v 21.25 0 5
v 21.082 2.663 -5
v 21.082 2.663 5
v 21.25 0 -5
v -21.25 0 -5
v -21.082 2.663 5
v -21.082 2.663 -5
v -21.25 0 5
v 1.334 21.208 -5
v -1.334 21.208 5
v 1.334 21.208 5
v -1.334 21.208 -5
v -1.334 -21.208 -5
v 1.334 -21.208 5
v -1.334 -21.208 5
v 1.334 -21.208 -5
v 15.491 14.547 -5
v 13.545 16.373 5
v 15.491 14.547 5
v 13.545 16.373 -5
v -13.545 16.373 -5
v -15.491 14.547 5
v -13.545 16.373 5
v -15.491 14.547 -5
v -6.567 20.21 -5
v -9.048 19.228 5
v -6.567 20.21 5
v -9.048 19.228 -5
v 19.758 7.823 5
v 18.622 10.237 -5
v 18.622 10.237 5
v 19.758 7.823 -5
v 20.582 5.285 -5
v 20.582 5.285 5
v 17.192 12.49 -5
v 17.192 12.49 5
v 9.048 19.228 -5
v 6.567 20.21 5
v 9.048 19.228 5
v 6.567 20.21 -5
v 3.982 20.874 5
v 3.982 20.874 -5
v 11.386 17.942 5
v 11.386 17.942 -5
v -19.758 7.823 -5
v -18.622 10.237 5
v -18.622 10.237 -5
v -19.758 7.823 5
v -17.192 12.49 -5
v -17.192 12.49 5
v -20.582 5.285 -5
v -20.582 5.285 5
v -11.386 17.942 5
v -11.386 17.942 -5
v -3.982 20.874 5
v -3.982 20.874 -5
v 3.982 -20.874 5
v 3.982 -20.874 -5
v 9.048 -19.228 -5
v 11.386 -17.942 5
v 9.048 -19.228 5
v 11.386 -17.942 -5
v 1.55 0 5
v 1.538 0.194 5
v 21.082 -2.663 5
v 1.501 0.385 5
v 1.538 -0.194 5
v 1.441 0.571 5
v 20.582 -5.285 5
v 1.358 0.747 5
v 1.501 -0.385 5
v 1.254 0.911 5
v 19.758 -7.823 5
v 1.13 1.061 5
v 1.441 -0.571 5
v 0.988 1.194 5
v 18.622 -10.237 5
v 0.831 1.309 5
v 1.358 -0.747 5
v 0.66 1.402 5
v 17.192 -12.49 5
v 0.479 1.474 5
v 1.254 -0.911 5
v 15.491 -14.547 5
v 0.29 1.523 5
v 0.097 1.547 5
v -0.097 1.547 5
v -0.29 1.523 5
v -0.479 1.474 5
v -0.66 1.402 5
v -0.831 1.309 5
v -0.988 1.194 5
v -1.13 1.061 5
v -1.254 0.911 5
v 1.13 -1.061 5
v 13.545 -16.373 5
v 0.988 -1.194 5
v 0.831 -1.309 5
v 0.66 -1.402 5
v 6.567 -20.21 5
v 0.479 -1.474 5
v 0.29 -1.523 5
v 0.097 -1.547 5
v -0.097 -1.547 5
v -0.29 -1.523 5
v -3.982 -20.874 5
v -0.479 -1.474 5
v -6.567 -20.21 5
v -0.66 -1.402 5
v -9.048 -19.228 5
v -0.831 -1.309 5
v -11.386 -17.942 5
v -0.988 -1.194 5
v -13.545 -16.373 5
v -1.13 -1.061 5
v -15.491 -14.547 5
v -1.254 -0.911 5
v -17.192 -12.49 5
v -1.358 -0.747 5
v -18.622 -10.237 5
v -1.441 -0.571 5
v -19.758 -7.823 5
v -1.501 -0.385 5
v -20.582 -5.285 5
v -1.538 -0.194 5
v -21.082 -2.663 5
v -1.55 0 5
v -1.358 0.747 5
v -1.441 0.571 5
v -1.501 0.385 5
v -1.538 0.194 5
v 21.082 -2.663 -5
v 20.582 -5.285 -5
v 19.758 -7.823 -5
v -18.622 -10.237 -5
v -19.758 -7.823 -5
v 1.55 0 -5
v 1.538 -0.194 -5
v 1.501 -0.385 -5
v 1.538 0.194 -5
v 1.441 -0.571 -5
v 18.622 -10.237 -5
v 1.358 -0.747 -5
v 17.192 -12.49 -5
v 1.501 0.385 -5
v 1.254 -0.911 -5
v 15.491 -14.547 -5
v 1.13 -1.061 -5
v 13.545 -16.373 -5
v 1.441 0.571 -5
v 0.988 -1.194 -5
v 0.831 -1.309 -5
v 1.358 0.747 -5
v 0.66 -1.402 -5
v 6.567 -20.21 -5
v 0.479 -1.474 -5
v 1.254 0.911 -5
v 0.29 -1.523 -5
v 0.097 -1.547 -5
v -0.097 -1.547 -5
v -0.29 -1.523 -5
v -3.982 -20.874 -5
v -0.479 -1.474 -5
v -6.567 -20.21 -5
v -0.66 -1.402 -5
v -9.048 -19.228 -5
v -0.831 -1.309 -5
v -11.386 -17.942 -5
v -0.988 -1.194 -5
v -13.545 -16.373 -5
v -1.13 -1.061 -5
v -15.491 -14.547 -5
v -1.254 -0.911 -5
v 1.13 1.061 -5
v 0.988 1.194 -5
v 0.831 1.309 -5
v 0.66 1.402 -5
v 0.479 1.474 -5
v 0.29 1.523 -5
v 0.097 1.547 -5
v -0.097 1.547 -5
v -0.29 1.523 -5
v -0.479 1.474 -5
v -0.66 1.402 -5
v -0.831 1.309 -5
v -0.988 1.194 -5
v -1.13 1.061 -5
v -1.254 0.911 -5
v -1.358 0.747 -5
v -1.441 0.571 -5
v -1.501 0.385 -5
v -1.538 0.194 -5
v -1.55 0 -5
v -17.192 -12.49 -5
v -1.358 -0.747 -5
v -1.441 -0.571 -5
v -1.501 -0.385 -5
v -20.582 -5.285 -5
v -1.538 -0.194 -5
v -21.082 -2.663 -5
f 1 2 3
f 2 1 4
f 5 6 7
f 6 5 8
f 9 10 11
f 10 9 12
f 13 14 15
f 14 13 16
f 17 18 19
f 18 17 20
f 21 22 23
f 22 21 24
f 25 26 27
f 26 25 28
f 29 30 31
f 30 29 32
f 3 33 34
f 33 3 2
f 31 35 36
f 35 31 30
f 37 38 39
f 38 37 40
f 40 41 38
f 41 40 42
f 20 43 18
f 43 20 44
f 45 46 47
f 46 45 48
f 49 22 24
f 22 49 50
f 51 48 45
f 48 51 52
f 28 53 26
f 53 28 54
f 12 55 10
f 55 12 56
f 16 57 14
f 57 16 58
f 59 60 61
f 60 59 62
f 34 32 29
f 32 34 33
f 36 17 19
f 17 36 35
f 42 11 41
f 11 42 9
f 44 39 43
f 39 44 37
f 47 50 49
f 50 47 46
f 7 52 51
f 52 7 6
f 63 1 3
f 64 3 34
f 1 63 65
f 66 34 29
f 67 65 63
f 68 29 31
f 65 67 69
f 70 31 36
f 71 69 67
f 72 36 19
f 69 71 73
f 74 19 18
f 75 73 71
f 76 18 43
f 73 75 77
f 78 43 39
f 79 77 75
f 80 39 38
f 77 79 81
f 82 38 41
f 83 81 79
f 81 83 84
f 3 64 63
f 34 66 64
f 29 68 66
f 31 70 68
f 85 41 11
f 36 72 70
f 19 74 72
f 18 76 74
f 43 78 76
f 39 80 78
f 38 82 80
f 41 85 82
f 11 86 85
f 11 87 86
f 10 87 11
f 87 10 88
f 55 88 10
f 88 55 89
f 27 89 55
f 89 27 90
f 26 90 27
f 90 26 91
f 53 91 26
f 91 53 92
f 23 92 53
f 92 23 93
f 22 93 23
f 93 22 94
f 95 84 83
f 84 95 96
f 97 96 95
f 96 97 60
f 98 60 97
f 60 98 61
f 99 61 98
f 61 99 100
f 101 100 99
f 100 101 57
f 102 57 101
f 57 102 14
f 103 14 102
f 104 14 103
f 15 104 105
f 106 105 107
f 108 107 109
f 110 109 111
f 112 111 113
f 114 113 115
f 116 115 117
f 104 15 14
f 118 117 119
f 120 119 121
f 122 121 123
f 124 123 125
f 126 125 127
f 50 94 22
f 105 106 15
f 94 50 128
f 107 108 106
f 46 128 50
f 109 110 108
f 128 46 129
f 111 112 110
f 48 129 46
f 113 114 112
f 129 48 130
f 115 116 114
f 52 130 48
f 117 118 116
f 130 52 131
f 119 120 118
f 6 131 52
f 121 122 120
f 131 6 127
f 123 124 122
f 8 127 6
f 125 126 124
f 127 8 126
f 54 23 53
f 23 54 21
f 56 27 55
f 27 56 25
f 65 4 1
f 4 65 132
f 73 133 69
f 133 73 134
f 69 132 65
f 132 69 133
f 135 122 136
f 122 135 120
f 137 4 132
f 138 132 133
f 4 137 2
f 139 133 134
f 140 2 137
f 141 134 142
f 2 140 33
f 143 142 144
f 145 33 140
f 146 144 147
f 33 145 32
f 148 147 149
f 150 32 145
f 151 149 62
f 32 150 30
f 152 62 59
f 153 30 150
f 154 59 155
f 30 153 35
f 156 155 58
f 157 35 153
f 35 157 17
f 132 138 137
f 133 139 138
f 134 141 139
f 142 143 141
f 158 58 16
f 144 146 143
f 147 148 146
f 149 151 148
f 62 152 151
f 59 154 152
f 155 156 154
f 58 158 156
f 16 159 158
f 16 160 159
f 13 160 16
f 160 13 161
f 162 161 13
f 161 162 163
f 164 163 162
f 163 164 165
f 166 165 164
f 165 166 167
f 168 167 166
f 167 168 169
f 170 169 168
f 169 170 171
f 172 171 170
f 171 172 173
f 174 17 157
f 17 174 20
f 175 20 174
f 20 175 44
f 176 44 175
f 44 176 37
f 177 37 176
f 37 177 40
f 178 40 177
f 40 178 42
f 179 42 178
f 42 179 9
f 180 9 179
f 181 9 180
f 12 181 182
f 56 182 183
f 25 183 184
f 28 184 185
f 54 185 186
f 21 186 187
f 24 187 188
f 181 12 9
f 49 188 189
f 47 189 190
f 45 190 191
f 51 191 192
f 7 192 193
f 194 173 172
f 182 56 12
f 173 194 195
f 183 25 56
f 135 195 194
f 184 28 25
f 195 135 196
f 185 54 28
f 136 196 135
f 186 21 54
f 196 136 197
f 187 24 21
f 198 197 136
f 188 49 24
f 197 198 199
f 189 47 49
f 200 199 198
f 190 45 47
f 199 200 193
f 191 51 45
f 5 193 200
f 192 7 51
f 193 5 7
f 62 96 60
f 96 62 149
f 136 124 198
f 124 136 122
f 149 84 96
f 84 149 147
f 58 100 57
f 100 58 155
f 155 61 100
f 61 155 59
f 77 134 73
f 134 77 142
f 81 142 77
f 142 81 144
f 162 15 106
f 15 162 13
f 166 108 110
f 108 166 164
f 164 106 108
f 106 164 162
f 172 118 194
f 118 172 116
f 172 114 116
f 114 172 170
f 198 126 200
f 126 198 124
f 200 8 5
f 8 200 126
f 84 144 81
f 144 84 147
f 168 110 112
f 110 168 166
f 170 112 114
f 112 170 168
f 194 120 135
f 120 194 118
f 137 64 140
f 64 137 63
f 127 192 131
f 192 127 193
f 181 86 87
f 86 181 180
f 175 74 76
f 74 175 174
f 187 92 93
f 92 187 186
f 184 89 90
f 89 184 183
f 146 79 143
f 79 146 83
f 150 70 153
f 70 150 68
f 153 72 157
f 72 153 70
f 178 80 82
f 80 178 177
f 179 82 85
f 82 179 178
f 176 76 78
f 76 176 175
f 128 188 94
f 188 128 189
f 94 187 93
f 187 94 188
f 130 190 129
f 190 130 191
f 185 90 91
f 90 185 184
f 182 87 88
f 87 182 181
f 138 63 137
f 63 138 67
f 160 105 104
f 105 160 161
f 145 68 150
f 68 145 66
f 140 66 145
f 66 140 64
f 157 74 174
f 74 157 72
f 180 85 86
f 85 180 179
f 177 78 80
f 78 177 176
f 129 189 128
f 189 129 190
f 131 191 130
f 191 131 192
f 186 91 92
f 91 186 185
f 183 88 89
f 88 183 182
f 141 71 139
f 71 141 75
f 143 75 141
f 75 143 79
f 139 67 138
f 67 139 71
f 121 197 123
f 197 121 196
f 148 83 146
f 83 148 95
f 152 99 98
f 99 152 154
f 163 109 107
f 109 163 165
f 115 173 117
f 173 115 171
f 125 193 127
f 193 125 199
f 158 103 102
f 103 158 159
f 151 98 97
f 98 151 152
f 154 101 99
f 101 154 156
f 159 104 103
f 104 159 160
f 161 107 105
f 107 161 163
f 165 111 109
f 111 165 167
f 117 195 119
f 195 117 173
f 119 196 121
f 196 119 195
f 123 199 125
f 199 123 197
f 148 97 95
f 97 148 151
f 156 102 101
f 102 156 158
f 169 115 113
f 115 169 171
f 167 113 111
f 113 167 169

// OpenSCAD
$fn = 50;


difference() {
	union() {
		translate(v = [0, 0, -5.0000000000]) {
			cylinder(h = 10, r = 21.2500000000);
		}
	}
	union() {
		translate(v = [0, 0, -100.0000000000]) {
			cylinder(h = 200, r = 1.5500000000);
		}
	}
}
